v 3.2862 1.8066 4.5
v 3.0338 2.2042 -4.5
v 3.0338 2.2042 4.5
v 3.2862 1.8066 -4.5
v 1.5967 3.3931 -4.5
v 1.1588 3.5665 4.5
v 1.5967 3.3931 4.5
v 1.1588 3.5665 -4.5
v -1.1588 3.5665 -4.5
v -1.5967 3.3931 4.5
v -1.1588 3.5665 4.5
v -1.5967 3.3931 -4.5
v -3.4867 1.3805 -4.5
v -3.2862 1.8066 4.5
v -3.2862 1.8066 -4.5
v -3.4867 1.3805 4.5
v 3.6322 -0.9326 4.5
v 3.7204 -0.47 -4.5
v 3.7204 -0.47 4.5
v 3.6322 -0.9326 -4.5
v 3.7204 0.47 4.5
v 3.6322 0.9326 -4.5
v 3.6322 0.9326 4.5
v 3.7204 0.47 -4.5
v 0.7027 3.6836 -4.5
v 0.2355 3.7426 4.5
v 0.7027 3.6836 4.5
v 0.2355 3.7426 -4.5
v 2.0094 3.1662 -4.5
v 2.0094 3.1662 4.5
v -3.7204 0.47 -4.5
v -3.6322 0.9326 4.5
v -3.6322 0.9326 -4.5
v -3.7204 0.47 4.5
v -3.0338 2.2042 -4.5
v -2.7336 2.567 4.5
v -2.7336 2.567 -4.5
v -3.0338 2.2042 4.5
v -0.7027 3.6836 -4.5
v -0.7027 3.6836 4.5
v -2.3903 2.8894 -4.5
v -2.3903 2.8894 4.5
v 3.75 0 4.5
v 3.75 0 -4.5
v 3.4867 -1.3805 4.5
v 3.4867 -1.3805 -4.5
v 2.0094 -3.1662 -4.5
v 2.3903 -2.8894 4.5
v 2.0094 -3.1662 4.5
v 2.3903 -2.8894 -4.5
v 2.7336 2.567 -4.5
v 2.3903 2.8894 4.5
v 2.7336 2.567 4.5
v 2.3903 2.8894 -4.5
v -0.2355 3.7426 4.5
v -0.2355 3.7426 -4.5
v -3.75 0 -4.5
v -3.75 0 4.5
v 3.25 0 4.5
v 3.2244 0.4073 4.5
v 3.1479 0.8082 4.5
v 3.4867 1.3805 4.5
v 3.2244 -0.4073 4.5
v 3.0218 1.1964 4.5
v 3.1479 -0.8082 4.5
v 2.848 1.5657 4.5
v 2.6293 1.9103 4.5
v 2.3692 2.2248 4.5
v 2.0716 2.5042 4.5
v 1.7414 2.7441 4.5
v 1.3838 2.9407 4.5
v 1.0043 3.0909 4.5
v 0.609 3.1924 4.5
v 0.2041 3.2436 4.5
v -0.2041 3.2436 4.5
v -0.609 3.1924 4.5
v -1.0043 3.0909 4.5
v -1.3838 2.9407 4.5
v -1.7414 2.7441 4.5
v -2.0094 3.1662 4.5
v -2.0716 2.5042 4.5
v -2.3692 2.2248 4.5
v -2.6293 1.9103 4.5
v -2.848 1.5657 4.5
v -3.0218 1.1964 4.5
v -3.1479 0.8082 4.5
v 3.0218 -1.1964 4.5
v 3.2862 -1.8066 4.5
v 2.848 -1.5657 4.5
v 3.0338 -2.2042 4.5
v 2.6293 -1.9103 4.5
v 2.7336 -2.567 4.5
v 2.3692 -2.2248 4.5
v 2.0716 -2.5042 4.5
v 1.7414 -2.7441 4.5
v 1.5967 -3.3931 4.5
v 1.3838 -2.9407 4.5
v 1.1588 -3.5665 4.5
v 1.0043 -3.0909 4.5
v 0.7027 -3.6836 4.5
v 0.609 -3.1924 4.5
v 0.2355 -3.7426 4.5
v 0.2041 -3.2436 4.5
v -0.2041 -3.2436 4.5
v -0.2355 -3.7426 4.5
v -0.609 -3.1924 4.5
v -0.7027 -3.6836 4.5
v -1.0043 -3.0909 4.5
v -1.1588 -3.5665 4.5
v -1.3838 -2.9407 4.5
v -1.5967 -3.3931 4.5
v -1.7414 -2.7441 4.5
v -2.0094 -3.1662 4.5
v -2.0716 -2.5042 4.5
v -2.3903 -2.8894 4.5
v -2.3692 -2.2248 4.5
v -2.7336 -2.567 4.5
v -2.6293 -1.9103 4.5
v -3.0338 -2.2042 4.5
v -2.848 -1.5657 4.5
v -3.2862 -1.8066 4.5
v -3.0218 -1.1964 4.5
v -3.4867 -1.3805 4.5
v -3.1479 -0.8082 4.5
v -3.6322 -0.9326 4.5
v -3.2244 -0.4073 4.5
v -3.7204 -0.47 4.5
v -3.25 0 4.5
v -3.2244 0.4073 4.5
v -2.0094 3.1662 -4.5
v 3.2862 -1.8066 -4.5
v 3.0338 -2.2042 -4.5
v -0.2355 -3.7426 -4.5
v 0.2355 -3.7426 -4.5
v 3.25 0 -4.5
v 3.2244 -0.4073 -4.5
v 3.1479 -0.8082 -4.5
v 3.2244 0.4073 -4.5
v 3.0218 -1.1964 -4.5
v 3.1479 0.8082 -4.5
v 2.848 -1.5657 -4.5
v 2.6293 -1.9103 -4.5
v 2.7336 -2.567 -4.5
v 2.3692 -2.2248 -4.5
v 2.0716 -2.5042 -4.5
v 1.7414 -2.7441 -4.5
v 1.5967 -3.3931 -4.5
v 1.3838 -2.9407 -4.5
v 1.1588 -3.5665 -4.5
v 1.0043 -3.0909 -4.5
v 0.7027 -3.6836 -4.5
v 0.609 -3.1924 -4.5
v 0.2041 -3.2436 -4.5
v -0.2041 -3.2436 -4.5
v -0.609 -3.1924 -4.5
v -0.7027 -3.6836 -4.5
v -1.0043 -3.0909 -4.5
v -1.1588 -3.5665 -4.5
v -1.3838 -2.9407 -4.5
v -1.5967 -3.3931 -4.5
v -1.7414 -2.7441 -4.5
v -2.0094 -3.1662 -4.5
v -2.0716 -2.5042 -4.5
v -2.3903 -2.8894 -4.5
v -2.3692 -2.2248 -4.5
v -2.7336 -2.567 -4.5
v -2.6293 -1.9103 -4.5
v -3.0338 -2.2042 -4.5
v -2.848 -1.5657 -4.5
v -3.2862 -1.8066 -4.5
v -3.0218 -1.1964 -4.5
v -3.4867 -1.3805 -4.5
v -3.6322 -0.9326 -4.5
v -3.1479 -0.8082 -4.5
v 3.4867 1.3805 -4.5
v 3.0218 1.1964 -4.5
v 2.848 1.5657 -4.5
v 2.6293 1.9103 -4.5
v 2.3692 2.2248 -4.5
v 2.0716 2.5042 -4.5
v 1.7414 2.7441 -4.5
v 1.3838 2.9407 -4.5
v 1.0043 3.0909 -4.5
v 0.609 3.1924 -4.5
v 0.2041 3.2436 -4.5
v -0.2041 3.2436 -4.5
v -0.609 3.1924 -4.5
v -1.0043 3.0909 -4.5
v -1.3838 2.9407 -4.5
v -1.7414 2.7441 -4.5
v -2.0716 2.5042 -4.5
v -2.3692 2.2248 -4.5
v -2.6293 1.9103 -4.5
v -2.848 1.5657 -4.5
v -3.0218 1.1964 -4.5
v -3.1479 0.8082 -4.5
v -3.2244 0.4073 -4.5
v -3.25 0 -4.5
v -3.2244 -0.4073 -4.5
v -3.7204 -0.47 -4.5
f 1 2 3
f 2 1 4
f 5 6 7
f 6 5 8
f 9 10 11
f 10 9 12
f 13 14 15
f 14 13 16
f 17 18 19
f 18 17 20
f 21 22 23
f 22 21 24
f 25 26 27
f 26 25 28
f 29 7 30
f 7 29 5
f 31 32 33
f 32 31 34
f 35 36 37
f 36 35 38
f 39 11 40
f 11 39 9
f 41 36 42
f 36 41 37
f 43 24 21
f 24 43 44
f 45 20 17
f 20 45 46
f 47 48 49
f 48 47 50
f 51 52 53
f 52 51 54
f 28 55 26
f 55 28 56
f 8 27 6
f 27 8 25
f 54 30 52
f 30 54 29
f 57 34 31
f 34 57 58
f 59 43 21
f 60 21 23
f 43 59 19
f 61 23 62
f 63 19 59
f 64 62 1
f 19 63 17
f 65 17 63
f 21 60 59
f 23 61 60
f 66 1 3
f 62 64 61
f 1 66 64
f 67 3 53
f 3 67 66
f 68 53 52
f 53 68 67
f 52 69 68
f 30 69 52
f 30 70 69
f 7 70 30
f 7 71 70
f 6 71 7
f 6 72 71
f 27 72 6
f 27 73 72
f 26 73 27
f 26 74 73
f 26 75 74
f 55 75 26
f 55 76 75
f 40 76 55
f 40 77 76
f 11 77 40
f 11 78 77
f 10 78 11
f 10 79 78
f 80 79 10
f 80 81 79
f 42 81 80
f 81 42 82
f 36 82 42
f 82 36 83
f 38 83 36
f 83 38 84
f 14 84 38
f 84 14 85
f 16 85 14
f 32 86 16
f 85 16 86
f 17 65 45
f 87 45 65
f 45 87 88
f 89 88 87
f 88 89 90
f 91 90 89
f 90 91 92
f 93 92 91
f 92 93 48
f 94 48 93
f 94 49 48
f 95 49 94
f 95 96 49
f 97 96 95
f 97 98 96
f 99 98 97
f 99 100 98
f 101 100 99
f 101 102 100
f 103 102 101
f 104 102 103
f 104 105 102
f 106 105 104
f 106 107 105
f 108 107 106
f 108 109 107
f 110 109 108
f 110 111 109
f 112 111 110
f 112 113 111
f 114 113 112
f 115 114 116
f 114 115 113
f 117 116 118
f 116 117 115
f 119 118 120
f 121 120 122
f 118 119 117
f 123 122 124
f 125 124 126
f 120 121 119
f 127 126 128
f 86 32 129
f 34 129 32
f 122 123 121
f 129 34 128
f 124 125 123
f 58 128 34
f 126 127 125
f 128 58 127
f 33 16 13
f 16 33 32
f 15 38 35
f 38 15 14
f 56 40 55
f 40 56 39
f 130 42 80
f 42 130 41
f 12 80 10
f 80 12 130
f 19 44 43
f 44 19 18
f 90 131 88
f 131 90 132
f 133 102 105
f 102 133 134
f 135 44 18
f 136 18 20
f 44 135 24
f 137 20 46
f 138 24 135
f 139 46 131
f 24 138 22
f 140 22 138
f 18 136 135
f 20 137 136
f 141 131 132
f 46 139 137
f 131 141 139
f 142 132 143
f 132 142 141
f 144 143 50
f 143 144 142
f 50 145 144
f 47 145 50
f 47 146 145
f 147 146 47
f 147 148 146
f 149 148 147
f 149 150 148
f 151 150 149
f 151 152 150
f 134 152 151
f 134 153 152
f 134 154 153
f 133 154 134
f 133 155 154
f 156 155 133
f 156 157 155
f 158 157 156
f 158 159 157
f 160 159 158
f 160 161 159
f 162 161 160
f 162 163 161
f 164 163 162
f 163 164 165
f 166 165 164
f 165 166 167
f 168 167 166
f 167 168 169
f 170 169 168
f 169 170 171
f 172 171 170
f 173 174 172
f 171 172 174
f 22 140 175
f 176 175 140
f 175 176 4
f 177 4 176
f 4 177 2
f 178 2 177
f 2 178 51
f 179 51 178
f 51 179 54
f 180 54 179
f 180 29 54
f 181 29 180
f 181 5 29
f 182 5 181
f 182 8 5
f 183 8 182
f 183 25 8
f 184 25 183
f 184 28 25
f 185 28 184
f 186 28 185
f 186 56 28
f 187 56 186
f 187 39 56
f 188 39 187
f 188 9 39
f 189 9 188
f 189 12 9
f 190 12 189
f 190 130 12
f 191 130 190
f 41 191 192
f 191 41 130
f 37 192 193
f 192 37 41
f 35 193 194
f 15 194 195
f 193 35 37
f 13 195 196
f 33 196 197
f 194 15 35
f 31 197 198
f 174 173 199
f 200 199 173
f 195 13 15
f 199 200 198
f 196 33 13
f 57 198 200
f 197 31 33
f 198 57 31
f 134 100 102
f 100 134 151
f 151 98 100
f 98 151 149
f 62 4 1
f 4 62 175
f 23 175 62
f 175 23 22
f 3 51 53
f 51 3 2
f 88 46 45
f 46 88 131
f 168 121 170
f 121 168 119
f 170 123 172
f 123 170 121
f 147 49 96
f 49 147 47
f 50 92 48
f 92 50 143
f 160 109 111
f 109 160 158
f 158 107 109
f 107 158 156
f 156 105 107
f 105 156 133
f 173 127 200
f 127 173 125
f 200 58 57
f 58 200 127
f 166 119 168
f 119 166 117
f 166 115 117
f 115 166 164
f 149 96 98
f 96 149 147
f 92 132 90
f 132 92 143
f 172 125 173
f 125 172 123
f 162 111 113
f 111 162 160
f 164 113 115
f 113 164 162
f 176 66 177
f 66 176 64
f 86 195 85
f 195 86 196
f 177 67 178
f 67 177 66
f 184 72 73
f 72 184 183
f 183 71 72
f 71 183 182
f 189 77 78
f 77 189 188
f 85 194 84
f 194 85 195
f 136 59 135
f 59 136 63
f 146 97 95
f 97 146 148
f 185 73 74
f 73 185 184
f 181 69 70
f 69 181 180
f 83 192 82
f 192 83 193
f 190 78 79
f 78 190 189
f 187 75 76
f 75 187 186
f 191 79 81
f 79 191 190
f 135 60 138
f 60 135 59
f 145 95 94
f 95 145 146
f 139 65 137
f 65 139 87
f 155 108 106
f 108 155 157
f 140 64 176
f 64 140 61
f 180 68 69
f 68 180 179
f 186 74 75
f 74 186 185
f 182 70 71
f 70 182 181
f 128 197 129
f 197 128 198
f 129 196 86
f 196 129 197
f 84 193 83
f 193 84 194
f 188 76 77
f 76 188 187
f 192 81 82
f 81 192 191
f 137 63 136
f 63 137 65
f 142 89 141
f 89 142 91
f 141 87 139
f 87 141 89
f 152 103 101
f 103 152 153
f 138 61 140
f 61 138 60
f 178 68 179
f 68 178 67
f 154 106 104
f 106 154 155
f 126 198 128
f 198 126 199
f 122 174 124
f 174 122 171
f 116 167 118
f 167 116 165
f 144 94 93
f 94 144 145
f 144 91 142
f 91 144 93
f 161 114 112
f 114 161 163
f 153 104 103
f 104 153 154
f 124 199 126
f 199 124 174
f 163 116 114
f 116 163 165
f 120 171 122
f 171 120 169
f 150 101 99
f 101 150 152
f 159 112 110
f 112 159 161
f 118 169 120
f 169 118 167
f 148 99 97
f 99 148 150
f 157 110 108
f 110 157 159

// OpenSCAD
$fn = 50;


difference() {
	union() {
		translate(v = [0, 0, -4.5000000000]) {
			cylinder(h = 9, r = 3.7500000000);
		}
	}
	union() {
		translate(v = [0, 0, -100.0000000000]) {
			cylinder(h = 200, r = 3.2500000000);
		}
	}
}
